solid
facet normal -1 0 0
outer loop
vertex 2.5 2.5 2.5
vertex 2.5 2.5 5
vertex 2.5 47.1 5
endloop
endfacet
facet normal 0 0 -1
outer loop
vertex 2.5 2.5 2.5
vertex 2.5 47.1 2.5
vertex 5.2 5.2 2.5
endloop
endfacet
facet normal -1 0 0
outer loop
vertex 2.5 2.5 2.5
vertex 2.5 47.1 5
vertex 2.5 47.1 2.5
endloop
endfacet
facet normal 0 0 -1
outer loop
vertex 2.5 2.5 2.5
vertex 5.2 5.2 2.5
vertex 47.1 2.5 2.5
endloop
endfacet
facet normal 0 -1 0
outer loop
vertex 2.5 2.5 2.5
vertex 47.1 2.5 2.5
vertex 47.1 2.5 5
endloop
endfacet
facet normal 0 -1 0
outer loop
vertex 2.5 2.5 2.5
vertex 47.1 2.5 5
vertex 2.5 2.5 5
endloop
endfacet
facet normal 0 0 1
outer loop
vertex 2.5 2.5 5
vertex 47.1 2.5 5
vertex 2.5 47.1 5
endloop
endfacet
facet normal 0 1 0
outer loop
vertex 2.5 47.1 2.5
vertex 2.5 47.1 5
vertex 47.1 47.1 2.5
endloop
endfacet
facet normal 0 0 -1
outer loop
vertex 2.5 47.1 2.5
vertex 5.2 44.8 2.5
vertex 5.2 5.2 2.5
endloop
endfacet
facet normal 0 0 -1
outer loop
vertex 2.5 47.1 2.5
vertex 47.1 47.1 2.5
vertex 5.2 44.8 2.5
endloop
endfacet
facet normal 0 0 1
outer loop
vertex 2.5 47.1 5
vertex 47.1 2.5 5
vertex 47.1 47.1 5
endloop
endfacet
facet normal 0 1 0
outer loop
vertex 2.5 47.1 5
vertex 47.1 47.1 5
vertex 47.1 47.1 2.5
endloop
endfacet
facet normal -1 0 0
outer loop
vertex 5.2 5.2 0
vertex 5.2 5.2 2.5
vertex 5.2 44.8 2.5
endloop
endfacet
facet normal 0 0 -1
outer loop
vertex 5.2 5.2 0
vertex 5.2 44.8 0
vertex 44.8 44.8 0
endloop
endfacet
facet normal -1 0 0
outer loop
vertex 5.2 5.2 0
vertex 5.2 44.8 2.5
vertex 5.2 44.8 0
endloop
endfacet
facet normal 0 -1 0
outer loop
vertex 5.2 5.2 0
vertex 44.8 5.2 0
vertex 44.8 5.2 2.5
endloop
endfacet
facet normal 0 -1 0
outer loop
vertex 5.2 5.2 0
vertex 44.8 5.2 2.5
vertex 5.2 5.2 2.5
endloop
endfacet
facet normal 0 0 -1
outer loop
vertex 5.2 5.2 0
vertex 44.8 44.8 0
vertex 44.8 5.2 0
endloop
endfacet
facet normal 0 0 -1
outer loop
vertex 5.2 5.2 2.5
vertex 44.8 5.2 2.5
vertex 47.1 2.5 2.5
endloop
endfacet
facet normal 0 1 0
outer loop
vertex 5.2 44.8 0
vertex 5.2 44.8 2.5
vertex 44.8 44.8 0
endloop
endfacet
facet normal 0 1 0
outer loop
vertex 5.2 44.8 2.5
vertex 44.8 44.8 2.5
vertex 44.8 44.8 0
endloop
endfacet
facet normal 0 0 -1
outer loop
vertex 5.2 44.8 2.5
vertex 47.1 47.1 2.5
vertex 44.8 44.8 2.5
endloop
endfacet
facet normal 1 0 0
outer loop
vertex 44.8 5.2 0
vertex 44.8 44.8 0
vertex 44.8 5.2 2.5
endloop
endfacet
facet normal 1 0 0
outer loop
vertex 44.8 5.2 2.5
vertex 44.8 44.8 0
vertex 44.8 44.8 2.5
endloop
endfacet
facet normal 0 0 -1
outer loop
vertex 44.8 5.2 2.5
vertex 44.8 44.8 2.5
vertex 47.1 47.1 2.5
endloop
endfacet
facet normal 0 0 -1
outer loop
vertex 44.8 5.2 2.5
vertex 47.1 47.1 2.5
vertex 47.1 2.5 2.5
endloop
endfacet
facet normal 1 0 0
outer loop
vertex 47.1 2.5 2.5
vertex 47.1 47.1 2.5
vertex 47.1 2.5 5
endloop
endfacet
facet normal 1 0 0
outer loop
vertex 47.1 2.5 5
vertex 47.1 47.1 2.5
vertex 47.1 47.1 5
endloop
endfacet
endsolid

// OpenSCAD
// stand for mayo and katsup
// to organize the fridge
// 01.10.2025 Sebastian Weigl
 
// set the fregment sizes
$fn = $preview ? 48 : 64;

// vars
border=2.5;

fir_box_width=50;
fir_box_depth=50;
fir_box_height=5;

sec_box_width=44.6;
sec_box_depth=44.6;
sec_box_height=2.5;

thi_box_width=39.6;
thi_box_depth=39.6;
thi_box_height=5;

// object

translate([0,0,0])
union(){
translate([border,border,border])
#cube([sec_box_width,sec_box_depth,sec_box_height],false);
translate([25,25,2.5])
#cube([thi_box_width,thi_box_depth,thi_box_height],true);
}
